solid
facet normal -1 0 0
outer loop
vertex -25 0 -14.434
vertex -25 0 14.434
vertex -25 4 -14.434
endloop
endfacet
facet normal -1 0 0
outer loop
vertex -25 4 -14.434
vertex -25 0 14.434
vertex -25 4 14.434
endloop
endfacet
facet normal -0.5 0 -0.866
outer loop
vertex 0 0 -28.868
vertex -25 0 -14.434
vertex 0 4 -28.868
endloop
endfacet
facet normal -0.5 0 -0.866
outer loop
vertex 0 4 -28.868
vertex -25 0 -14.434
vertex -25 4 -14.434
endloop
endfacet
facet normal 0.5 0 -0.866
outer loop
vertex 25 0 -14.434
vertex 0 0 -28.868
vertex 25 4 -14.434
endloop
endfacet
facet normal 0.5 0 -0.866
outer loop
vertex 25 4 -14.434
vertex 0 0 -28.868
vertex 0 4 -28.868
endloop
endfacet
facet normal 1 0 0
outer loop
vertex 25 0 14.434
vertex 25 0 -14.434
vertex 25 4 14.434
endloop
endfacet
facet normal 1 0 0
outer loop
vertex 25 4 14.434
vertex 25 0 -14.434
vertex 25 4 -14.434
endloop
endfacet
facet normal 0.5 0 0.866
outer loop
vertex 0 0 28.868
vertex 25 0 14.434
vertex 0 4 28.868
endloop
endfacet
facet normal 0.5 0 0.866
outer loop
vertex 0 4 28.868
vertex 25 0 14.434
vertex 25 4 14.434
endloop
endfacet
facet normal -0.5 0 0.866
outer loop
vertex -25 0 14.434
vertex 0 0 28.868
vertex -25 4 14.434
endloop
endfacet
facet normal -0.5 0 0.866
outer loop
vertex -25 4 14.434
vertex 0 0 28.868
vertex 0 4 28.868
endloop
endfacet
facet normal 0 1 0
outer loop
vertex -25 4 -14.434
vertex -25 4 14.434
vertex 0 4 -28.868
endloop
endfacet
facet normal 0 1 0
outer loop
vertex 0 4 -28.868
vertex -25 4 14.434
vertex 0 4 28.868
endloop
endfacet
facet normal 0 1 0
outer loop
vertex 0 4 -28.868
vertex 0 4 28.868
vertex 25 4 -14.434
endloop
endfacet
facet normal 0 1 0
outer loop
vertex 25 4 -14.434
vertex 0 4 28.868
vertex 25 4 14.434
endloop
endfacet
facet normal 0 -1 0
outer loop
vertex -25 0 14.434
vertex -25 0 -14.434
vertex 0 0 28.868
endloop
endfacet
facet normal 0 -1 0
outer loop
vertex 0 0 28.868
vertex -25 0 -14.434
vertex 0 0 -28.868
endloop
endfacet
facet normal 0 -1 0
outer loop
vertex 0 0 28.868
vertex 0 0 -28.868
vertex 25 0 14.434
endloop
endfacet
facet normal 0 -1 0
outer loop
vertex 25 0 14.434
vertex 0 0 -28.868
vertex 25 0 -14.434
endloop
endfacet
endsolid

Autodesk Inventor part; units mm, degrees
ref_plane "YZ Plane" through (0, 0, 0) normal (1, 0, 0) x (0, 1, 0)
ref_plane "XZ Plane" through (0, 0, 0) normal (0, 1, 0) x (-1, 0, 0)
ref_plane "XY Plane" through (0, 0, 0) normal (0, 0, 1) x (1, 0, 0)
sketch "Sketch1" plane through (0, 0, 0) normal (0, 1, 0) x (-1, 0, 0)
  circle A0 centre (0, 0) radius 25 construction
  line L0 (25, -14.4338) -> (0, -28.8675)
  line L1 (0, -28.8675) -> (-25, -14.4338)
  line L2 (-25, -14.4338) -> (-25, 14.4338)
  line L3 (-25, 14.4338) -> (0, 28.8675)
  line L4 (0, 28.8675) -> (25, 14.4338)
  line L5 (25, 14.4338) -> (25, -14.4338)
  point P0 (25, 0)
  dimension "d0" = 50
extrude "Extrusion1" add sketch "Sketch1" along normal blind 4
properties part number "objeto5"
